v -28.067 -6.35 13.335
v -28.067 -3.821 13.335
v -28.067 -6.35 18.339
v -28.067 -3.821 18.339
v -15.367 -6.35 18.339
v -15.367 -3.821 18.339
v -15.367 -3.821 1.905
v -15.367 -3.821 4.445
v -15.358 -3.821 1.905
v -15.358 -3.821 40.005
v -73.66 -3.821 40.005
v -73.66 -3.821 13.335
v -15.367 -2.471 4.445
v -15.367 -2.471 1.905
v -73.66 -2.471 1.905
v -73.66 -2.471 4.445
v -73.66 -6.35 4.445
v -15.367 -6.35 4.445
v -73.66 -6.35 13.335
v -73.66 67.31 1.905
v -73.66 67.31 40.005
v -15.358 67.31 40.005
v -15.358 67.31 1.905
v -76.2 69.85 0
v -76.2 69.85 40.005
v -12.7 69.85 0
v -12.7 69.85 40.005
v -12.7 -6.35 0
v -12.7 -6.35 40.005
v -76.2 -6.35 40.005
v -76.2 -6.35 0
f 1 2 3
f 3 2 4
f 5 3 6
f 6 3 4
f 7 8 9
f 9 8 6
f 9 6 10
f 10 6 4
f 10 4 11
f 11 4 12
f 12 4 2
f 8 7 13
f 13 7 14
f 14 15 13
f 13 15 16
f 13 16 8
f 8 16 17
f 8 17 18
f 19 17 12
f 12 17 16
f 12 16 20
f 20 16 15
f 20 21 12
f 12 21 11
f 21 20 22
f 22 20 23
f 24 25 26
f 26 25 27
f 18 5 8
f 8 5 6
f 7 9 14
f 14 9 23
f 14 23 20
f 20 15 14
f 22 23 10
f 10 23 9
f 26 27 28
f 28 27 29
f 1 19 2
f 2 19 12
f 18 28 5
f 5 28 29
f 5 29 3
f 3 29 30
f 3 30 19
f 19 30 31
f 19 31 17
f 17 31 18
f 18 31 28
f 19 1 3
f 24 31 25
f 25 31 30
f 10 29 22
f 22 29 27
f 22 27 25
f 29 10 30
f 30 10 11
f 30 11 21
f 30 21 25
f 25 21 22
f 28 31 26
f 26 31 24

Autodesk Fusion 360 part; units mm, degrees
sketch "Sketch1" plane through (0, 0, 0) normal (0, 0, 1) x (1, 0, 0)
  line L0 (-71.12, 30.48) -> (106.68, 30.48)
  line L1 (106.68, 30.48) -> (106.68, -102.87)
  line L2 (106.68, -102.87) -> (-71.12, -102.87)
  line L3 (-71.12, -102.87) -> (-71.12, 30.48)
  dimension "d1" = 177.8
  dimension "d2" = 133.35
sketch "Sketch2" plane through (0, 0, 0) normal (0, 0, 1) x (1, 0, 0)
  line L0 (-71.12, 30.48) -> (119.38, 30.48)
  line L1 (119.38, 30.48) -> (119.38, -115.57)
  line L2 (119.38, -115.57) -> (-71.12, -115.57)
  line L3 (-71.12, -115.57) -> (-71.12, 30.48)
  dimension "d23" = 146.05
sketch "Sketch3" plane through (-71.12, 0, 0) normal (-1, 0, 0) x (0, -1, 0)
  line L0 (102.87, 0) -> (115.57, 0)
  line L1 (115.57, 0) -> (115.57, 114.3)
  line L2 (115.57, 114.3) -> (102.87, 114.3)
  line L3 (88.9, 5.08) -> (38.1, 5.08)
  line L4 (38.1, 5.08) -> (38.1, 17.78)
  line L5 (38.1, 17.78) -> (88.9, 17.78)
  line L6 (88.9, 17.78) -> (88.9, 5.08)
  line L7 (102.87, 114.3) -> (102.87, 0)
  dimension "d26" = 12.7
sketch "Sketch4" plane through (0, 0, 0) normal (0, 0, 1) x (1, 0, 0)
  line L0 (-76.2, 63.5) -> (-19.05, 63.5)
  line L1 (-19.05, 63.5) -> (-19.05, -6.35)
  line L2 (-19.05, -6.35) -> (-76.2, -6.35)
  line L3 (-76.2, -6.35) -> (-76.2, 63.5)
  dimension "d29" = 57.15
  dimension "d30" = 69.85
extrude "Extrude13" add sketch "Sketch4" along normal blind 40.005
sketch "Sketch5" plane through (0, 0, 40.005) normal (0, 0, 1) x (-1, 0, 0)
  line L0 (76.2, 6.35) -> (19.05, 6.35)
  line L1 (19.05, 6.35) -> (19.05, -63.5)
  line L2 (19.05, -63.5) -> (76.2, -63.5)
  line L3 (76.2, -63.5) -> (76.2, 6.35)
  line L4 (73.66, -60.96) -> (21.7077, -60.96)
  line L5 (21.7077, -60.96) -> (21.7077, 3.8213)
  line L6 (21.7077, 3.8213) -> (73.66, 3.8213)
  line L7 (73.66, 3.8213) -> (73.66, -60.96)
extrude "Extrude14" cut sketch "Sketch5" against normal blind 38.1 contours L4 L5 L6 L7
sketch "Sketch6" plane through (0, -6.35, 0) normal (0, -1, 0) x (1, 0, 0)
  line L0 (-76.2, 0) -> (-19.05, 0)
  line L1 (-19.05, 0) -> (-19.05, 40.005)
  line L2 (-19.05, 40.005) -> (-76.2, 40.005)
  line L3 (-76.2, 40.005) -> (-76.2, 0)
  line L4 (-22.86, 2.54) -> (-73.66, 2.54)
  line L5 (-73.66, 2.54) -> (-73.66, 15.24)
  line L6 (-73.66, 15.24) -> (-22.86, 15.24)
  line L7 (-22.86, 15.24) -> (-22.86, 2.54)
  dimension "d35" = 50.8
  dimension "d36" = 12.7
extrude "Extrude15" cut sketch "Sketch6" against normal blind 19.9898 contours L4 L5 L6 L7
extrude "Extrude16" cut 1 faces at (-56.7267, -4.6642, 2.54) along direction (0, 0, -1) blind 0.635
extrude "Extrude17" add 1 faces at (-39.7933, -4.6642, 15.24) along direction (0, 0, -1) blind 1.905
extrude "Extrude18" add 1 faces at (-19.05, 40.2167, 13.335) along direction (1, 0, 0) blind 6.35
extrude "Extrude19" cut 1 faces at (-21.7077, 17.7724, 27.305) along direction (1, 0, 0) blind 6.35
extrude "Extrude20" cut 1 faces at (-22.86, -4.6642, 5.715) along direction (1, 0, 0) blind 7.62
extrude "Extrude21" add 1 faces at (-15.24, -4.6642, 5.715) along direction (-1, 0, 0) blind 0.127
extrude "Extrude22" add 1 faces at (-55.0333, 63.5, 13.335) along direction (0, 1, 0) blind 6.35
extrude "Extrude23" cut 1 faces at (-54.2259, 60.96, 27.305) along direction (0, 1, 0) blind 6.35
sketch "Sketch7" plane through (0, 0, 1.905) normal (0, 0, 1) x (-1, 0, 0)
  line L0 (15.367, 6.35) -> (15.367, 3.8213)
  line L1 (15.367, 3.8213) -> (15.3577, 3.8213)
  line L2 (15.3577, 3.8213) -> (15.3577, -67.31)
  line L3 (15.3577, -67.31) -> (73.66, -67.31)
  line L4 (73.66, -67.31) -> (73.66, 6.35)
  line L5 (73.66, 6.35) -> (15.367, 6.35)
  line L6 (73.66, 6.35) -> (15.367, 6.35)
  line L7 (15.367, 6.35) -> (15.367, 2.4713)
  line L8 (15.367, 2.4713) -> (73.66, 2.4713)
  line L9 (73.66, 2.4713) -> (73.66, 6.35)
extrude "Extrude24" add sketch "Sketch7" along normal blind 2.54 contours L0 L4 L5 L6 L7 L8 L9
sketch "Sketch8" plane through (0, 0, 13.335) normal (0, 0, -1) x (1, 0, 0)
  line L0 (-15.367, 3.8213) -> (-15.367, 6.35)
  line L1 (-15.367, 6.35) -> (-73.66, 6.35)
  line L2 (-73.66, 6.35) -> (-73.66, 3.8213)
  line L3 (-73.66, 3.8213) -> (-15.367, 3.8213)
  line L4 (-15.367, 3.8213) -> (-28.067, 3.8213)
  line L5 (-28.067, 3.8213) -> (-28.067, 6.35)
  line L6 (-28.067, 6.35) -> (-15.367, 6.35)
  line L7 (-15.367, 6.35) -> (-15.367, 3.8213)
  dimension "d57" = 12.7
extrude "Extrude25" cut sketch "Sketch8" against normal blind 5.0038 contours L0 L1 L3 L4 L5 L6 L7
